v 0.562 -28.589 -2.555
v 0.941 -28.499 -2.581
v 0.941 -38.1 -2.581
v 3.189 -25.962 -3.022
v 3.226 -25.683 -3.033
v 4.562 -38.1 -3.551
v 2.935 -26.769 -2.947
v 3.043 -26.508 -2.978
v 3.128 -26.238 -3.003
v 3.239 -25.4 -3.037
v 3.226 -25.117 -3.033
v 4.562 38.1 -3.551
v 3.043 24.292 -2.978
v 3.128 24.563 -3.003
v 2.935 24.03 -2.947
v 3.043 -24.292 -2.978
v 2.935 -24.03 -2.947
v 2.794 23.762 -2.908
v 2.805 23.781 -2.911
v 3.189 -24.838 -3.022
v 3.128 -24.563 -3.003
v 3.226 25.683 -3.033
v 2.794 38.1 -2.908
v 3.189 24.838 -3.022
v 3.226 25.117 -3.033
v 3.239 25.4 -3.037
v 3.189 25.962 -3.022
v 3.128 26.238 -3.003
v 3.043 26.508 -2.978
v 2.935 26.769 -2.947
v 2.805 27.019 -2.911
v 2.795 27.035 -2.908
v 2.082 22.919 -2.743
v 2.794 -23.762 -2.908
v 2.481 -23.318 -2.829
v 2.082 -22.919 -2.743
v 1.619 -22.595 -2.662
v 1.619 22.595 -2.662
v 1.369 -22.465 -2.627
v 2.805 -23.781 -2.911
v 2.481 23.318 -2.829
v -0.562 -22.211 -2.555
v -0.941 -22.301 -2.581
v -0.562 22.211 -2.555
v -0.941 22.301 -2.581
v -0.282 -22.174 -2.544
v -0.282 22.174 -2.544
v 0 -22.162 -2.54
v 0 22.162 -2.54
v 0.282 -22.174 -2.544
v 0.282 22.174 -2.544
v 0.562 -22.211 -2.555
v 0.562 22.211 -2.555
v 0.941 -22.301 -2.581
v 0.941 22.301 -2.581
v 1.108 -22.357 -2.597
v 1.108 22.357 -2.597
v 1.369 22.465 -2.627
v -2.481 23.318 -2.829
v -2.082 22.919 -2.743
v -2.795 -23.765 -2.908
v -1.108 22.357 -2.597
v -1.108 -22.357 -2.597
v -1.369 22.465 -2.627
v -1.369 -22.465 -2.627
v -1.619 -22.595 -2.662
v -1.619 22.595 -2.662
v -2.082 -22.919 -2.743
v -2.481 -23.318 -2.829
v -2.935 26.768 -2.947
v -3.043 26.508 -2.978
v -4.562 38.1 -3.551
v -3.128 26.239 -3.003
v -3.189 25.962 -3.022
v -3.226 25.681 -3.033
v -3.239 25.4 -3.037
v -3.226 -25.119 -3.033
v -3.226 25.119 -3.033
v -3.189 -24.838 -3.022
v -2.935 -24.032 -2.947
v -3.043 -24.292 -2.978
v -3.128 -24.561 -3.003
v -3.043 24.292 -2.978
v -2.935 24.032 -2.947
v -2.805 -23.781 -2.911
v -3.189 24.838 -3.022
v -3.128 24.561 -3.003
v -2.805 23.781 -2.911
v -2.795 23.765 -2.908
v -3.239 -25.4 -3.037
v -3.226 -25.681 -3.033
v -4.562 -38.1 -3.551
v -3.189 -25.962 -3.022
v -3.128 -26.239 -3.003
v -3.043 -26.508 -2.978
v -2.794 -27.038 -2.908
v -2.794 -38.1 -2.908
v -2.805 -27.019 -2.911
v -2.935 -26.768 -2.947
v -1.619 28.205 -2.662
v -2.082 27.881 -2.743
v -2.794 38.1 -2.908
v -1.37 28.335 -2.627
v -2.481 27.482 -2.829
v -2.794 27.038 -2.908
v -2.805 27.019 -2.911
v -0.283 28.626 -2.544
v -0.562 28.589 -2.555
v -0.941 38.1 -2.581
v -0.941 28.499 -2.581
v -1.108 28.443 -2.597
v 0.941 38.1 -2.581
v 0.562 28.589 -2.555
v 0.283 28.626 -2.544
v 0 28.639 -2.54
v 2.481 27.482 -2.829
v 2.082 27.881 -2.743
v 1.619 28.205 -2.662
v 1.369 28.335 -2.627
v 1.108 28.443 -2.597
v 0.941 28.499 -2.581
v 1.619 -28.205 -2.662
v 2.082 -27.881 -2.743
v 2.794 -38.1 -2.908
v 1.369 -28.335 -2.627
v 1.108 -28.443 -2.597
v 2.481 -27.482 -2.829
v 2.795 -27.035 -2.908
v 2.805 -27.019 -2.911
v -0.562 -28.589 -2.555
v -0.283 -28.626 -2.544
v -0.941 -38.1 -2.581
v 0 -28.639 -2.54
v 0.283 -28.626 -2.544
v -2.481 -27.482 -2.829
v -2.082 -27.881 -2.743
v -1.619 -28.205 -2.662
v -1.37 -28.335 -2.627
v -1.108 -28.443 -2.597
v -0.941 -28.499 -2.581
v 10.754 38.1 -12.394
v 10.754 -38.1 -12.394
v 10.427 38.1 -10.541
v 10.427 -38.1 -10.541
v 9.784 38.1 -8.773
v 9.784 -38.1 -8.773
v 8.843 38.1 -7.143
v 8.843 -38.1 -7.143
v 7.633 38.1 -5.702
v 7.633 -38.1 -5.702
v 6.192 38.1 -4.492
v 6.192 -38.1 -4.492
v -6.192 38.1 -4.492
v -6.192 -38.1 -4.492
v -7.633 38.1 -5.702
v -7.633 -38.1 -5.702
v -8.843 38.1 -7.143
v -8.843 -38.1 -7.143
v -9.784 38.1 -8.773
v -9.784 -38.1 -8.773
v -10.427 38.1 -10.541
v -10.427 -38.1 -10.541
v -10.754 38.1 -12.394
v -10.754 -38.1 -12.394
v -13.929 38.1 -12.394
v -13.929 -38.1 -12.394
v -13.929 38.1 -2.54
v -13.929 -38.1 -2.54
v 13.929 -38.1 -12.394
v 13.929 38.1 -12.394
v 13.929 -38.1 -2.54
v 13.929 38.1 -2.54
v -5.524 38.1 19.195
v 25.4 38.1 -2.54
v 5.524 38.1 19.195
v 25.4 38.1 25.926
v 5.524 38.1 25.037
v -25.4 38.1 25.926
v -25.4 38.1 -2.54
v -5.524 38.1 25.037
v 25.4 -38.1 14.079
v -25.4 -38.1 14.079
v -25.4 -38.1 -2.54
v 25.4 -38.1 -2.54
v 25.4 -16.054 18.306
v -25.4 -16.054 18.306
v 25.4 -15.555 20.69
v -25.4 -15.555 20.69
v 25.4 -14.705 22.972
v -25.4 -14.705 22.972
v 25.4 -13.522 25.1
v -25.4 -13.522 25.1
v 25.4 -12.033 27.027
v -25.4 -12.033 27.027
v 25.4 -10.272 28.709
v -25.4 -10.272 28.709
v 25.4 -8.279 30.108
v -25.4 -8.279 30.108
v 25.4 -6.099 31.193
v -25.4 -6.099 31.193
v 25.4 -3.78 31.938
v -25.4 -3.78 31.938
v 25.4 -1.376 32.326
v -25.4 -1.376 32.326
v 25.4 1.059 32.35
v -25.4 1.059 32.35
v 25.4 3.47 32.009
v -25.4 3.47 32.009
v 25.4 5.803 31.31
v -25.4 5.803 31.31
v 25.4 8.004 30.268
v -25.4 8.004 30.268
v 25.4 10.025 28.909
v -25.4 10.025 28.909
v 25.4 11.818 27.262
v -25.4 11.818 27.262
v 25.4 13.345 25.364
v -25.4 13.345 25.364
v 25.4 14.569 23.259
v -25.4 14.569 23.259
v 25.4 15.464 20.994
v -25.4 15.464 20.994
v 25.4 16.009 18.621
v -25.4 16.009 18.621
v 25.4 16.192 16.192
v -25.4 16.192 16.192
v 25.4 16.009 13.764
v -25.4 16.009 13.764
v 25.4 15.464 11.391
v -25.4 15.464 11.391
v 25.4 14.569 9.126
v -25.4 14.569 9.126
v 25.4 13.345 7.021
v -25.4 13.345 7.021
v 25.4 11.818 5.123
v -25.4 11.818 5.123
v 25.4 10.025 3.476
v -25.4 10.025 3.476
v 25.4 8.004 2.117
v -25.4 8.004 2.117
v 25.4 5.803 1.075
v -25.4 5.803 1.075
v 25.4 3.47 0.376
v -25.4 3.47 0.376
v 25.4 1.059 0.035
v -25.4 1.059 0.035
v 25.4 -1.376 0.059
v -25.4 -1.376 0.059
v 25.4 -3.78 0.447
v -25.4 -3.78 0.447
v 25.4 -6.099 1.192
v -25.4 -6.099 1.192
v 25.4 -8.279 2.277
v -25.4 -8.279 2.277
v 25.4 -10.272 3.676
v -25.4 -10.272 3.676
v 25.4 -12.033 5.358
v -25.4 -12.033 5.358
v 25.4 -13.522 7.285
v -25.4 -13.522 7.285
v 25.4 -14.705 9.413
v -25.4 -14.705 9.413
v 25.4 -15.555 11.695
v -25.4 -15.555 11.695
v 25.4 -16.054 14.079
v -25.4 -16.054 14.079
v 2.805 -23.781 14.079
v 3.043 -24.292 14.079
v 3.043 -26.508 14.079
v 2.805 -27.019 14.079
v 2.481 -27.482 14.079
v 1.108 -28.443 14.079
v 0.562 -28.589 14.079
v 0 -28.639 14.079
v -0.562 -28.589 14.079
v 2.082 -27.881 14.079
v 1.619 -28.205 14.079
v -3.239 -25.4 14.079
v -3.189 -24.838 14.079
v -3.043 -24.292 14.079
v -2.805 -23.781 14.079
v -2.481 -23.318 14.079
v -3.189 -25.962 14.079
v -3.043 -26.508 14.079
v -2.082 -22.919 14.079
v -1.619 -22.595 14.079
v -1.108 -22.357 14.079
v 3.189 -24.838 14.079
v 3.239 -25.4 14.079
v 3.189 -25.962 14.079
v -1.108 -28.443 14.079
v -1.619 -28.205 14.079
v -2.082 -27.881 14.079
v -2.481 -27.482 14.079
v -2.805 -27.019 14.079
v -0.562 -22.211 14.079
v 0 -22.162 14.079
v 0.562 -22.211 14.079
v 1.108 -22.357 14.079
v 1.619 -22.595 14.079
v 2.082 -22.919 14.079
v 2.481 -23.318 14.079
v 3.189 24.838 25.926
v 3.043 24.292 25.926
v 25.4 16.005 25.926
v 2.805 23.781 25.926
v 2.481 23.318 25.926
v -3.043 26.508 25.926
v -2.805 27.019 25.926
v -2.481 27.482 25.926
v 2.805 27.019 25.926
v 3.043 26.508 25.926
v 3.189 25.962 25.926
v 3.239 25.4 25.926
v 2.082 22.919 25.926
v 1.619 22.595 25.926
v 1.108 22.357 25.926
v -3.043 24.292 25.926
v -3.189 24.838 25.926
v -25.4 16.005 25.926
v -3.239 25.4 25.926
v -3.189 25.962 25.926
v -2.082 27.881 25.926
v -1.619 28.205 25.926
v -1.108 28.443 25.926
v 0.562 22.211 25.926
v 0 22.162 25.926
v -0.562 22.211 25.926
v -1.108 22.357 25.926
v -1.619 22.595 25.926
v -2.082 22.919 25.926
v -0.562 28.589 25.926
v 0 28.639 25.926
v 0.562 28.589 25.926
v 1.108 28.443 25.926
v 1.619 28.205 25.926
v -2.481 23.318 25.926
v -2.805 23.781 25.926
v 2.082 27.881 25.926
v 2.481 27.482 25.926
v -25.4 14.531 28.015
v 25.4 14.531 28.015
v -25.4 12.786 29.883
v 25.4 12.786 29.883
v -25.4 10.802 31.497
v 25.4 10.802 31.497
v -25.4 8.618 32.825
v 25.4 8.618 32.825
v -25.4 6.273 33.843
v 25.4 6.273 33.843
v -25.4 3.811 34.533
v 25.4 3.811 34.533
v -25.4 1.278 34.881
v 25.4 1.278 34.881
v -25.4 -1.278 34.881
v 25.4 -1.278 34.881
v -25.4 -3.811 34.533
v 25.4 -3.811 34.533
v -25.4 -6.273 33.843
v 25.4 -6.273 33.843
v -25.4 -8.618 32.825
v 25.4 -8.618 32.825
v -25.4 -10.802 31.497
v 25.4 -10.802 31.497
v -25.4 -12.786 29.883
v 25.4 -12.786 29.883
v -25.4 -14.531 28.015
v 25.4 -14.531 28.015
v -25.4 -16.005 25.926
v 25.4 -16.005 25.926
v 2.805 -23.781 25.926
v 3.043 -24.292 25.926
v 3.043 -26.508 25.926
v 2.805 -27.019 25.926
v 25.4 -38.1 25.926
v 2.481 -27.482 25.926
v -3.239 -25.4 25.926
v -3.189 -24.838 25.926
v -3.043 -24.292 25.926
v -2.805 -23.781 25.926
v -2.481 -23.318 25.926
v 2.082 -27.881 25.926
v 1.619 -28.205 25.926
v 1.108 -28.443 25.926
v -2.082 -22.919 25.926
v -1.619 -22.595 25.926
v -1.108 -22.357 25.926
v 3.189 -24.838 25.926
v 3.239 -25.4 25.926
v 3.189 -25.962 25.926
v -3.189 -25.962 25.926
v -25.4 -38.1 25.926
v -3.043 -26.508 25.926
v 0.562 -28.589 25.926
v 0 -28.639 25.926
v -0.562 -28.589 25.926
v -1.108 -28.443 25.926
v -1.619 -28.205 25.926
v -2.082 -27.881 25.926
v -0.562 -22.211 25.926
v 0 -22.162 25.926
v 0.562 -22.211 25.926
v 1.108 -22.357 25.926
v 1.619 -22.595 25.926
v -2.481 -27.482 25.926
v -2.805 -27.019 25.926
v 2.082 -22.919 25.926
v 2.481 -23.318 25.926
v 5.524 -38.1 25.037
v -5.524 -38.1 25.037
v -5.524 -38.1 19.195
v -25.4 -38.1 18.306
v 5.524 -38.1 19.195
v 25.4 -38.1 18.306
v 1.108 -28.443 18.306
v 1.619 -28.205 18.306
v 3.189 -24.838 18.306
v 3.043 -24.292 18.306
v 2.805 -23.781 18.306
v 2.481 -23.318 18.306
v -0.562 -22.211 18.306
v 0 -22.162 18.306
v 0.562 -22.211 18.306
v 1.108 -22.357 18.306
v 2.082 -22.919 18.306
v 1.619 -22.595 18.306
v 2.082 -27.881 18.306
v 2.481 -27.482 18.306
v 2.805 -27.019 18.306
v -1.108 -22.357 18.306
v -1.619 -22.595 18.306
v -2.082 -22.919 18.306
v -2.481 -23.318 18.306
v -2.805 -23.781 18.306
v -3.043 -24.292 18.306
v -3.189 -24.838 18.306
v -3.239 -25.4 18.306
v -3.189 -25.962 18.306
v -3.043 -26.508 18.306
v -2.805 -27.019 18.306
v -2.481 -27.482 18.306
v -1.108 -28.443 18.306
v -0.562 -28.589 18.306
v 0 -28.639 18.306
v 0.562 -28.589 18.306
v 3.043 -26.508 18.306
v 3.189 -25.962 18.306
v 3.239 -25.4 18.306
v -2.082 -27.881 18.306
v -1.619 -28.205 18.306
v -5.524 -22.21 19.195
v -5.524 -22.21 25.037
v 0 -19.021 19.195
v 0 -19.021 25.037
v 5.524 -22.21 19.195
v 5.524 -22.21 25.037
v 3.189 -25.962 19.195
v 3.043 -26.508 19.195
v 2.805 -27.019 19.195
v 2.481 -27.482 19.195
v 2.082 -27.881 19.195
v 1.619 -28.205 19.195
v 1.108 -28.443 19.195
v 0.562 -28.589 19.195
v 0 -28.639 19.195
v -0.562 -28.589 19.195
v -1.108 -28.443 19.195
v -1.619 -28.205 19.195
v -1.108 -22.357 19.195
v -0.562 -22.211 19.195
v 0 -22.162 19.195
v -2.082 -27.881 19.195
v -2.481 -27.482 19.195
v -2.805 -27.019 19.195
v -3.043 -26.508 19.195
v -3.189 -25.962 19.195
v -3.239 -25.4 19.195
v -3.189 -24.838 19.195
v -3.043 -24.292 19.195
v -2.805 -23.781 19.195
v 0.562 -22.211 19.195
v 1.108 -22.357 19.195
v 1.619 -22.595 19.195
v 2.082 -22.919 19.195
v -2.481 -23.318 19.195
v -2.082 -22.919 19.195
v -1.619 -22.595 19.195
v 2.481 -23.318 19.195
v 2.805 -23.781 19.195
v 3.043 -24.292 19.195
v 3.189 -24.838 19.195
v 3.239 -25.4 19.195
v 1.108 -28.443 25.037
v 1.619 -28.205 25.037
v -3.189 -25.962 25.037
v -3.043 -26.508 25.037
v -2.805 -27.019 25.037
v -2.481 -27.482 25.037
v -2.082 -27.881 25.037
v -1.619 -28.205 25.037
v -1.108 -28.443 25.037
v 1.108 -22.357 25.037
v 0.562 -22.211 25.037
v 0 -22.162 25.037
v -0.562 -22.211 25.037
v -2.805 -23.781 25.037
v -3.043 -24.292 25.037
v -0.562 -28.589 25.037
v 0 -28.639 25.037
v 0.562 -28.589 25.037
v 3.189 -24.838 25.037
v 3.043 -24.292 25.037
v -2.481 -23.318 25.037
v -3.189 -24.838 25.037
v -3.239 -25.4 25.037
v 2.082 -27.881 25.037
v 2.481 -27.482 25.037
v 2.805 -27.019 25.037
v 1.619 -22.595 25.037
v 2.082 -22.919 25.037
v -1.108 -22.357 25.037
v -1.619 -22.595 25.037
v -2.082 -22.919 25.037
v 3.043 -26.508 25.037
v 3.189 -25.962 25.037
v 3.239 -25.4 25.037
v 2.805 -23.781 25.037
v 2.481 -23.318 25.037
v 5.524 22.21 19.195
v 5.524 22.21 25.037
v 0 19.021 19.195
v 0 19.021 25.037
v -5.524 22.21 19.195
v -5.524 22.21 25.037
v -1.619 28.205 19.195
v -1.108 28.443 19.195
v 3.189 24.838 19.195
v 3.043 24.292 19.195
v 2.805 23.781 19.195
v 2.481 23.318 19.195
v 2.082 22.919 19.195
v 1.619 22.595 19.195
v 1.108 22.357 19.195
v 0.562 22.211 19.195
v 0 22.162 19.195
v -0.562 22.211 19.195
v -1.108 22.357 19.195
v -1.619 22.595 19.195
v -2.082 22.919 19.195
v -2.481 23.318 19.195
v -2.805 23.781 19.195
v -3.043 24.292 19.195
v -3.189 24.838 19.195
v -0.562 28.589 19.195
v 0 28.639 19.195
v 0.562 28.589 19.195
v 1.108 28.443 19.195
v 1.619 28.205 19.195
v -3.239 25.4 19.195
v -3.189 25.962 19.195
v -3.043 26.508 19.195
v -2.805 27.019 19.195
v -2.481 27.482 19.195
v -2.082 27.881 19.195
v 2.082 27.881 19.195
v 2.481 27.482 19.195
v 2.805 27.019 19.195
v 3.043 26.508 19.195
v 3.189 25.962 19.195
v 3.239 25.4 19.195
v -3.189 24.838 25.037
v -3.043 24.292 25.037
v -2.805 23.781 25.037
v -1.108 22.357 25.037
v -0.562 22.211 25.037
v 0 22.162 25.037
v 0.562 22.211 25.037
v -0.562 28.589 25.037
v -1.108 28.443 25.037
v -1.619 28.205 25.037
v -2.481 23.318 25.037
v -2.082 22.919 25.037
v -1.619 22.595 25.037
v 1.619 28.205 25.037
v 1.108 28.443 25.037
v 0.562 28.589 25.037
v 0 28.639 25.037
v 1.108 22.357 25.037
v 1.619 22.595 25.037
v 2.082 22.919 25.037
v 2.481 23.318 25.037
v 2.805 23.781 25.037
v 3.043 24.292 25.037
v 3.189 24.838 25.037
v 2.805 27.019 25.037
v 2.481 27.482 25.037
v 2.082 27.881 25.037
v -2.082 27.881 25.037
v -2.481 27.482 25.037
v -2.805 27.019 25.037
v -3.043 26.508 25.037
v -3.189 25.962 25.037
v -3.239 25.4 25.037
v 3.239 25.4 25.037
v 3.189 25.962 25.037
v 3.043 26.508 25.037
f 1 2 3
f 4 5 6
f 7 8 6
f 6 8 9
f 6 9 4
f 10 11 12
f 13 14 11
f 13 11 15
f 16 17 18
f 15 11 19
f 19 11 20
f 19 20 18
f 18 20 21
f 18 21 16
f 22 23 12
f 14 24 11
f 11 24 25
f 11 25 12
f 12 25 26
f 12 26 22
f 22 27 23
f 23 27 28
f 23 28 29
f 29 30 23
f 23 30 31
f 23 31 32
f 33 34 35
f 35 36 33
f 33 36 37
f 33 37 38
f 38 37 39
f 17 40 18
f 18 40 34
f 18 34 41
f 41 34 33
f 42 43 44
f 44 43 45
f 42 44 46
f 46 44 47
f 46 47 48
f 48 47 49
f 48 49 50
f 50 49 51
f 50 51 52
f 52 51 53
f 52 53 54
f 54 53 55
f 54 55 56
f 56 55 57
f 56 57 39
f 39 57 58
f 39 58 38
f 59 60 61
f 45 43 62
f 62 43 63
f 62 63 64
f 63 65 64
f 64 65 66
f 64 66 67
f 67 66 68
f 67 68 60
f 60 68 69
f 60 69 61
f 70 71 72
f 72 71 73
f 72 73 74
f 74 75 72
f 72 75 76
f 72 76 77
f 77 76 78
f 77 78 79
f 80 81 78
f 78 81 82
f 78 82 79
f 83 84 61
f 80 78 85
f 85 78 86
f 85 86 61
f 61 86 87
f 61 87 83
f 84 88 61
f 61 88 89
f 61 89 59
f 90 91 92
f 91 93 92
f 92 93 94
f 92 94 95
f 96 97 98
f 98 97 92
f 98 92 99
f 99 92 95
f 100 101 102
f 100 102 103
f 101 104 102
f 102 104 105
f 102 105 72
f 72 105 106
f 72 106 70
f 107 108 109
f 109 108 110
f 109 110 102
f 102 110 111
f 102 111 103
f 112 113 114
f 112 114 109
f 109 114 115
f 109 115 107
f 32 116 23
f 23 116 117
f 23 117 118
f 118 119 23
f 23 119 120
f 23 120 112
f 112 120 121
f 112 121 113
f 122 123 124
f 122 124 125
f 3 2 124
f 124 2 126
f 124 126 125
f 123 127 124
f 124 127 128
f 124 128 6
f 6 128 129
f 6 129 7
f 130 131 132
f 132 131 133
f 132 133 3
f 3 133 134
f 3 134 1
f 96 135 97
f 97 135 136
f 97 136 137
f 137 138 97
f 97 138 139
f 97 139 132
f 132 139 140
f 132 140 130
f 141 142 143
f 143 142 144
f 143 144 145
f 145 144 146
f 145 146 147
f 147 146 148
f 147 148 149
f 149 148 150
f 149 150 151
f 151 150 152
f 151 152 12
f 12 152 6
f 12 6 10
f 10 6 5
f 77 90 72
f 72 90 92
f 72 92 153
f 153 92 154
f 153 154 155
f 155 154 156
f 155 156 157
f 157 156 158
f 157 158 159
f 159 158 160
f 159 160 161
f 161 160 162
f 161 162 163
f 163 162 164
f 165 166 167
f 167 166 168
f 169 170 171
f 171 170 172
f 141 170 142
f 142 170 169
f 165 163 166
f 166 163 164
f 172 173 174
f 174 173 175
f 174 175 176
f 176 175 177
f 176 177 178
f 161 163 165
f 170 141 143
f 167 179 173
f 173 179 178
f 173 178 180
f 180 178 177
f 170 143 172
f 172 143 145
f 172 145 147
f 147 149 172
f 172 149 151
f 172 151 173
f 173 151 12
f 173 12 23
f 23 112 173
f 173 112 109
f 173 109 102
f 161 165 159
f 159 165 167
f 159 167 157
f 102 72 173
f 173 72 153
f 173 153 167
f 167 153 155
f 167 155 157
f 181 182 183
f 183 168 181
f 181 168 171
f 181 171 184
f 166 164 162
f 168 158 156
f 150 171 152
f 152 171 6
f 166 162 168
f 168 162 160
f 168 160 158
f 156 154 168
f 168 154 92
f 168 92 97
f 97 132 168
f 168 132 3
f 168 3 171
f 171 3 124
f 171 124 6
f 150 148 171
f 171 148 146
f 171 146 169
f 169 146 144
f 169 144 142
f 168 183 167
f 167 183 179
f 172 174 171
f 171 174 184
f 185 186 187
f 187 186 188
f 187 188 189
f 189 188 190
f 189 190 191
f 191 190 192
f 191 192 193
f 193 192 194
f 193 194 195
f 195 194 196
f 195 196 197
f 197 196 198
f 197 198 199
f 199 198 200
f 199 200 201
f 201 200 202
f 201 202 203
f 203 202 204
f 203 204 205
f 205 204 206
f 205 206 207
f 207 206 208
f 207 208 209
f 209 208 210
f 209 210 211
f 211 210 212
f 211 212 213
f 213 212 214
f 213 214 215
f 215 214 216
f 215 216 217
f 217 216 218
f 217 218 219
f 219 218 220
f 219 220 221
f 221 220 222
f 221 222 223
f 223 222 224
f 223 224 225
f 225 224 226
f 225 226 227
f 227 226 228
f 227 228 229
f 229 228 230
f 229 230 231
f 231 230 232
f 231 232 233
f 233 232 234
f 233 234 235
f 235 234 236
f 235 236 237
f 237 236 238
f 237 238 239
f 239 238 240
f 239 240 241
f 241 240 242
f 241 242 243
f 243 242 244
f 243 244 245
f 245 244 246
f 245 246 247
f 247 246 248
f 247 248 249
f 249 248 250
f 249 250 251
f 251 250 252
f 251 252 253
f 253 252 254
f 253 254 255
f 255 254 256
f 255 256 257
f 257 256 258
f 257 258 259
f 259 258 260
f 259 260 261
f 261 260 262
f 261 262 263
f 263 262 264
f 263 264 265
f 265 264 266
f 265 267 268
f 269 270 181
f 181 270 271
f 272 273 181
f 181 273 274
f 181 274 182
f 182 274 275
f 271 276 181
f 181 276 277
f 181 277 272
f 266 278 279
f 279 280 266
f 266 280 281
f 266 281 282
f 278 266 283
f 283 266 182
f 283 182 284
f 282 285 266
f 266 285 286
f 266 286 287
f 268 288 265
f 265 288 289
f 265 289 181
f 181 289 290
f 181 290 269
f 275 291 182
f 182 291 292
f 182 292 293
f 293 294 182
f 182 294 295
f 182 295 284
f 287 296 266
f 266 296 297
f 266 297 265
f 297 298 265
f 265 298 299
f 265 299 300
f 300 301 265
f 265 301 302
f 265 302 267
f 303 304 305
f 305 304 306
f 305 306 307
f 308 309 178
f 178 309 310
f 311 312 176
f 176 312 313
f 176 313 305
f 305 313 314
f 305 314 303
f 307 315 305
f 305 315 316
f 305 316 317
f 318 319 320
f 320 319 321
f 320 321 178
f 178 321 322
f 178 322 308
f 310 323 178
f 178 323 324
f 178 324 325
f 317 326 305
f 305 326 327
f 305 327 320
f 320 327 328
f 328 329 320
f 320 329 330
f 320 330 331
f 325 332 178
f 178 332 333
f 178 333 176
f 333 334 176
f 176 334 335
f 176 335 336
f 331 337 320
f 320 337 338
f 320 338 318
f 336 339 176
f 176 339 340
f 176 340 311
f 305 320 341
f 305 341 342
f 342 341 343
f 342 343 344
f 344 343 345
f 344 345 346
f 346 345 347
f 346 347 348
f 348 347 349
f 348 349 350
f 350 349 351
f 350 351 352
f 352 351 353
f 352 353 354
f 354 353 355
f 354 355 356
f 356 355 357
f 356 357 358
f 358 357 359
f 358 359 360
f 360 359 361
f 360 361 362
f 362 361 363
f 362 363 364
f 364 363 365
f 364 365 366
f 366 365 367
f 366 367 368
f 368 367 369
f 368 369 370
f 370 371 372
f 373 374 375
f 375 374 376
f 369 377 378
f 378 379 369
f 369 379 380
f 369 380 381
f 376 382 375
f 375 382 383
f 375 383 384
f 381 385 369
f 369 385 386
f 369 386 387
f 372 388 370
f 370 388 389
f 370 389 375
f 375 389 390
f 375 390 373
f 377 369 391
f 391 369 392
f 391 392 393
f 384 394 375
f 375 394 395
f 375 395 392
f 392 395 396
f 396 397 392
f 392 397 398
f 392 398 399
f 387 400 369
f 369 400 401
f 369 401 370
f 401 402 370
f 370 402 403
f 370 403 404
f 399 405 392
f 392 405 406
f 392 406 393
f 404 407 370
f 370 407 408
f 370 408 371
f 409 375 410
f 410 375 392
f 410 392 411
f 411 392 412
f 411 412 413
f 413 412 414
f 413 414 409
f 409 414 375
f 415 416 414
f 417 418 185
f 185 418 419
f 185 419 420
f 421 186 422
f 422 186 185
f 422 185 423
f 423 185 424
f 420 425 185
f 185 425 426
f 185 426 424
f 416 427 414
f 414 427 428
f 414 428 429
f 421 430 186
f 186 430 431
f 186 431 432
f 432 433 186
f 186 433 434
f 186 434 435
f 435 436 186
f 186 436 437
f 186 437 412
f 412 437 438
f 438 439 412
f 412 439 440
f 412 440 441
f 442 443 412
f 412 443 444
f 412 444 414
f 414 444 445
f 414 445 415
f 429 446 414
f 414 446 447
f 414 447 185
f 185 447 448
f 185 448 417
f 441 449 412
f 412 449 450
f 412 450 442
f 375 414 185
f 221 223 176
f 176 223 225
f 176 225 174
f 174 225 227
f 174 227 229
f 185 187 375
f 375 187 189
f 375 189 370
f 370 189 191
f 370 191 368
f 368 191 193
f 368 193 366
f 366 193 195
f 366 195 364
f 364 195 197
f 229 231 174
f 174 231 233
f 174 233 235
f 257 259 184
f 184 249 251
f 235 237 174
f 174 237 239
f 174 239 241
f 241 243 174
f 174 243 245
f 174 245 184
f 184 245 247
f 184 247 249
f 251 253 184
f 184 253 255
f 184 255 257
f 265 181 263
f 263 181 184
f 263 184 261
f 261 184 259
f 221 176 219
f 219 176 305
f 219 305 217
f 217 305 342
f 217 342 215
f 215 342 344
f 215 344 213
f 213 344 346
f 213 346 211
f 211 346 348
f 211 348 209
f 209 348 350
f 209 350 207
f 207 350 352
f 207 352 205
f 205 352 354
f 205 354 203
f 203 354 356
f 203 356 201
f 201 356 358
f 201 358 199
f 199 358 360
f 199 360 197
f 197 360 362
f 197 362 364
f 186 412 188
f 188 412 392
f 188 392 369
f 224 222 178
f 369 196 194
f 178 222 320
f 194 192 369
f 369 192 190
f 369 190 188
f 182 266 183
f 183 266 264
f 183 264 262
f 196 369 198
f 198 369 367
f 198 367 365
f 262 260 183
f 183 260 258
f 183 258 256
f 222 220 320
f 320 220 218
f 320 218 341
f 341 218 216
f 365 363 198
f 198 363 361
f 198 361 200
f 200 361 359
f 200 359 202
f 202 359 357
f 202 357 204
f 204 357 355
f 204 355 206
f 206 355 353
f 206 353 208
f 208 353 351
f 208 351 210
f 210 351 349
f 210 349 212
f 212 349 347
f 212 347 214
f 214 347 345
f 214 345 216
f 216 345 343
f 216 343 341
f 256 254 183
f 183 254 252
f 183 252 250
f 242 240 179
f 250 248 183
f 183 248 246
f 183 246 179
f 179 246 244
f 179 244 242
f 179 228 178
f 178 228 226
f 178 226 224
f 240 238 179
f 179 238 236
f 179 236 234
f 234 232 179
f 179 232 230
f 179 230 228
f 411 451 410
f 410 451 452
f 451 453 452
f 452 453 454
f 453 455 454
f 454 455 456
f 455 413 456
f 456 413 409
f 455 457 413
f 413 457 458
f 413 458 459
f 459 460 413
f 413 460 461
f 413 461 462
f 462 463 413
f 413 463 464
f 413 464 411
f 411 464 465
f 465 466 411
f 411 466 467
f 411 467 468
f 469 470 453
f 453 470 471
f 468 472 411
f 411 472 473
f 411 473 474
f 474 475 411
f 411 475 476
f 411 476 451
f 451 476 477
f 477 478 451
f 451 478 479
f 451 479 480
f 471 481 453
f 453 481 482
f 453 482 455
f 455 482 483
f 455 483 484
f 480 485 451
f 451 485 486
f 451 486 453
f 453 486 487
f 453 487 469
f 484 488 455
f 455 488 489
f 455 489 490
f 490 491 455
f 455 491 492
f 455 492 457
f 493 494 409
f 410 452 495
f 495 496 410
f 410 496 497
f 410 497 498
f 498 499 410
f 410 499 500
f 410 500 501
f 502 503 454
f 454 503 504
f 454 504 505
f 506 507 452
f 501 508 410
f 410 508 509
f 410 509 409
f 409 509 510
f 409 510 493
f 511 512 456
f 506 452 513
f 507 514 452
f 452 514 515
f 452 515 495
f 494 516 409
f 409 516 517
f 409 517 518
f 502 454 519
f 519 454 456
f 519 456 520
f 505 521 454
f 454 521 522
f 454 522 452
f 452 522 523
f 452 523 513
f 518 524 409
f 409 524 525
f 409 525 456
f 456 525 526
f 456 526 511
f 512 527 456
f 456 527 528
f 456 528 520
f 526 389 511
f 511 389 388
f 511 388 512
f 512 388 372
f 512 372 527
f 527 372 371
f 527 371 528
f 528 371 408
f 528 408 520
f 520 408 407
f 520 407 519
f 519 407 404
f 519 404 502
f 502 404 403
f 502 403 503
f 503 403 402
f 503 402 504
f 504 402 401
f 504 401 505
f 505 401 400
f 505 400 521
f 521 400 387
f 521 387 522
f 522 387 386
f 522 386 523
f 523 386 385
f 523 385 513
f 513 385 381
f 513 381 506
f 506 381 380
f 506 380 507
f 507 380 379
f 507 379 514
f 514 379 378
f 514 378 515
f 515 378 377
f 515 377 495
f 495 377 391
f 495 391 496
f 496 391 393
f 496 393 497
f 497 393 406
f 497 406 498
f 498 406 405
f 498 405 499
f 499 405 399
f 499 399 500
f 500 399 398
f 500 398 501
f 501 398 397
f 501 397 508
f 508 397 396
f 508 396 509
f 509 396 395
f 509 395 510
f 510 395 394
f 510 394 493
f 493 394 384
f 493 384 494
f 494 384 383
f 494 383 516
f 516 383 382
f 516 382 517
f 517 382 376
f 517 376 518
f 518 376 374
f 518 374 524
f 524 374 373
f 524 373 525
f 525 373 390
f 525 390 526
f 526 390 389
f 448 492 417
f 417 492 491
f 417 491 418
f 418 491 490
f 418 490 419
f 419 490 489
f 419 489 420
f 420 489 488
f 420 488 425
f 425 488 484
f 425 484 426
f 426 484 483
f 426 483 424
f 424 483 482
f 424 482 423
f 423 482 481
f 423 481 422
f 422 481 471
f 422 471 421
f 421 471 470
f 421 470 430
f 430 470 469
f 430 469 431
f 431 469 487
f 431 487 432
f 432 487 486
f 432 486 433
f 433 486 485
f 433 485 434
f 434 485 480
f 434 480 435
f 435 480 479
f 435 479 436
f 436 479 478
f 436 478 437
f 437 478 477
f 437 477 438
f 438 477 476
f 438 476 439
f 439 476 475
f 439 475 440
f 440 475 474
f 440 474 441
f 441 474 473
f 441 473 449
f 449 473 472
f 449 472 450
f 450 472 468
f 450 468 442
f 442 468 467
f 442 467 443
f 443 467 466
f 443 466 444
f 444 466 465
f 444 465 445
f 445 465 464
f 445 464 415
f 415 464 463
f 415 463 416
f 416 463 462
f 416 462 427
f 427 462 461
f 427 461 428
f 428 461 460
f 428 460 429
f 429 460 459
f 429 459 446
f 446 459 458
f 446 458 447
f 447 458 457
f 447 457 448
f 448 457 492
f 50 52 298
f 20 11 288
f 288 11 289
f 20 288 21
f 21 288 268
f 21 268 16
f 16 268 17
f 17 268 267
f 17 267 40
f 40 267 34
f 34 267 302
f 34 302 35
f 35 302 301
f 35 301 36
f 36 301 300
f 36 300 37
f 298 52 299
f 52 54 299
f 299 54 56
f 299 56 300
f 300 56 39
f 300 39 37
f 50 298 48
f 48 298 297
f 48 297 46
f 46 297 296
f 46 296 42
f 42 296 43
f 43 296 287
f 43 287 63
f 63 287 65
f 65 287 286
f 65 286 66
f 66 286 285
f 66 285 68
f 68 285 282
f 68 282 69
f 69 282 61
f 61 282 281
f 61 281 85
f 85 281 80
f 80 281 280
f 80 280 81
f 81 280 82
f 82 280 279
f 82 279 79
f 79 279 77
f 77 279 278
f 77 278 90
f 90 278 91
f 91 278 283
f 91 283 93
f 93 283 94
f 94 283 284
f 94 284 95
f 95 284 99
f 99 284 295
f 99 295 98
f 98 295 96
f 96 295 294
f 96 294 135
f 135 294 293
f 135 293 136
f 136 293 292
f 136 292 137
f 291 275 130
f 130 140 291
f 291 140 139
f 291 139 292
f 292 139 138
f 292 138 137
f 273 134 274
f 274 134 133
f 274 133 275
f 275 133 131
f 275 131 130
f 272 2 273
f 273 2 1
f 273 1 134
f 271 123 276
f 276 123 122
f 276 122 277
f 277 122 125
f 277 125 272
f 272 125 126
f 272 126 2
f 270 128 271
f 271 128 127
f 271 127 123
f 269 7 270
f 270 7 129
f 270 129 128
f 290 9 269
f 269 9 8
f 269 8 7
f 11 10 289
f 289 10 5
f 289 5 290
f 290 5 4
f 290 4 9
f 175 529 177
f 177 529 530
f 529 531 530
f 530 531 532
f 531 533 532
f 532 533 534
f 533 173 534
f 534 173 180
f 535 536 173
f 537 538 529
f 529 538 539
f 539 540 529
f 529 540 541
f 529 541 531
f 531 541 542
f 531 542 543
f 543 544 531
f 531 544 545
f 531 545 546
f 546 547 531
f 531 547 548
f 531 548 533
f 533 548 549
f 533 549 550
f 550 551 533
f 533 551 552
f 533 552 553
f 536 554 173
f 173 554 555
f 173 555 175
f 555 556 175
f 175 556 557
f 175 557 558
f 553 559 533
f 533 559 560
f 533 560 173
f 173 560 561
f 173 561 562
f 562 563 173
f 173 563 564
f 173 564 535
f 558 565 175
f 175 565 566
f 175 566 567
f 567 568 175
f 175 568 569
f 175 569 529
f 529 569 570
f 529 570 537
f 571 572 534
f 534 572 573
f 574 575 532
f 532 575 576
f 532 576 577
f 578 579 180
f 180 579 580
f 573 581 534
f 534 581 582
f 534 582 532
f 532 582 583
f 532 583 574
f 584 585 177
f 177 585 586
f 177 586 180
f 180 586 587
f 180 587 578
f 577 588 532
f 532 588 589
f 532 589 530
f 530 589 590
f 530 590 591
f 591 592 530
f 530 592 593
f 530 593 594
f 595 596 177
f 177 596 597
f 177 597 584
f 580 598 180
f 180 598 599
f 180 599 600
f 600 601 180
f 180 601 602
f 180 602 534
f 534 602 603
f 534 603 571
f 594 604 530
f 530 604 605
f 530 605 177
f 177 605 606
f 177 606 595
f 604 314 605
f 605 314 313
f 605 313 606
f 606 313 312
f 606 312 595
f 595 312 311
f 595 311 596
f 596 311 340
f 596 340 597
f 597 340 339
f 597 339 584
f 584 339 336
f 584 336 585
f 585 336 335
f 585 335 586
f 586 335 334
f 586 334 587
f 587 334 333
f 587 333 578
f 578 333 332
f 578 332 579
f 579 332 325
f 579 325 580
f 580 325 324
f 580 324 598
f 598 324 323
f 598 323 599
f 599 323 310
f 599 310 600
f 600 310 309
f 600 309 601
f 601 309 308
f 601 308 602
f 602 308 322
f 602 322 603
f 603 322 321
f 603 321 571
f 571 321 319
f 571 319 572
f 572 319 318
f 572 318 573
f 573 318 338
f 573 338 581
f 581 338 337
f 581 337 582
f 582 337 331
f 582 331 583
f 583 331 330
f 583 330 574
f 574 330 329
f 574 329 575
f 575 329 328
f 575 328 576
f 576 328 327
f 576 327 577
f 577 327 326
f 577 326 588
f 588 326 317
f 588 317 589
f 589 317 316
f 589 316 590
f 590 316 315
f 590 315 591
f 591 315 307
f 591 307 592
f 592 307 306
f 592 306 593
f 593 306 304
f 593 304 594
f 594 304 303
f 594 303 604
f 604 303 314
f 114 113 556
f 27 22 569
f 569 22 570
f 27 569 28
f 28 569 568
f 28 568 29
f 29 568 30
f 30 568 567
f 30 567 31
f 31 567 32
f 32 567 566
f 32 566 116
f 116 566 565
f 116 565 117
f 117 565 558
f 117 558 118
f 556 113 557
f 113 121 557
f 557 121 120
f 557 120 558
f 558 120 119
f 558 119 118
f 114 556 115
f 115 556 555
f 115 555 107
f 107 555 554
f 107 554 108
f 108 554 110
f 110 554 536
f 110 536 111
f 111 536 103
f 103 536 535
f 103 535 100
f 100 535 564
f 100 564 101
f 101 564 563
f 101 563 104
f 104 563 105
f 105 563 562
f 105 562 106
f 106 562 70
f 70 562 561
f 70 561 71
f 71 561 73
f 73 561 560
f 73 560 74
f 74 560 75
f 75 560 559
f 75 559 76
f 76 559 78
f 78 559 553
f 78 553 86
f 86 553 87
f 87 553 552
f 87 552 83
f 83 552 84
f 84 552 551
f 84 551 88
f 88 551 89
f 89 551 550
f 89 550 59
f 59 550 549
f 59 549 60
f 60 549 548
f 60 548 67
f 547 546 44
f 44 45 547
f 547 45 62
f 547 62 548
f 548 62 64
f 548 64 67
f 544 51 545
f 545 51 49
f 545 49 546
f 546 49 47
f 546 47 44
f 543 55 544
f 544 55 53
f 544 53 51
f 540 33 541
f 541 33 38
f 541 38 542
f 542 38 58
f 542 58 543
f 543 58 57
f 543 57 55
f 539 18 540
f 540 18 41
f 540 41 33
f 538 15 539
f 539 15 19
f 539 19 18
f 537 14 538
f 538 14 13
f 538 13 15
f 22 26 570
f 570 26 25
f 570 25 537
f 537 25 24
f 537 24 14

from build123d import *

# Parameters (mm, degrees)
BOSS_EXTRUDE1_DEPTH = 38.1
BOSS_EXTRUDE2_DEPTH = 25.4
CUT_EXTRUDE1_DEPTH  = 2.921
SKETCH5_R           = 3.2385
CUT_EXTRUDE3_DEPTH  = 58.589283942


with BuildPart() as part:
    # Sketch1 → Boss-Extrude1 (new, symmetric)
    with BuildSketch(Plane(origin=(0, 0, 0), x_dir=(1, 0, 0), z_dir=(0, 1, 0))):
        with BuildLine():
            Line((-13.928921766, 0), (13.928921766, 0))
            Line((13.928921766, 0), (13.928921766, 12.394153757))
            Line((13.928921766, 12.394153757), (10.753921766, 12.394153757))
            ThreePointArc((10.753921766, 12.394153757), (0, 2.54), (-10.753921766, 12.394153757))
            Line((-10.753921766, 12.394153757), (-13.928921766, 12.394153757))
            Line((-13.928921766, 12.394153757), (-13.928921766, 0))
        make_face()
    extrude(amount=BOSS_EXTRUDE1_DEPTH, both=True)

    # Sketch2 → Boss-Extrude2 (add, symmetric)
    with BuildSketch(Plane(origin=(0, 0, 0), x_dir=(0, 0, -1), z_dir=(1, 0, 0))):
        with BuildLine():
            Line((-18.306045368, -16.053970918), (-18.306045368, -38.1))
            Line((-18.306045368, -38.1), (-25.926045368, -38.1))
            Line((-25.926045368, -38.1), (-25.926045368, -16.005144511))
            ThreePointArc((-25.926045368, -16.005144511), (-34.925, 0), (-25.926045368, 16.005144511))
            Line((-25.926045368, 16.005144511), (-25.926045368, 38.1))
            Line((-25.926045368, 38.1), (2.54, 38.1))
            Line((2.54, 38.1), (2.54, -38.1))
            Line((2.54, -38.1), (-14.078954632, -38.1))
            Line((-14.078954632, -38.1), (-14.078954632, -16.053970918))
            ThreePointArc((-14.078954632, -16.053970918), (-16.1925, 16.1925), (-18.306045368, -16.053970918))
        make_face()
    extrude(amount=BOSS_EXTRUDE2_DEPTH, both=True)

    # Sketch3 → Cut-Extrude1 (cut, symmetric)
    with BuildSketch(Plane.XY.offset(22.116045368)):
        Polygon((5.5245, -28.589571562), (5.5245, -22.210428438), (0, -19.020856876), (-5.5245, -22.210428438), (-5.5245, -28.589571562), (-5.5245, -38.1), (5.5245, -38.1), align=None)
    cut_extrude1 = extrude(amount=CUT_EXTRUDE1_DEPTH, both=True, mode=Mode.SUBTRACT)

    # Sketch5 → Cut-Extrude3 (cut, symmetric)
    with BuildSketch(Plane.XY):
        with Locations((0, -25.4)):
            Circle(SKETCH5_R)
    cut_extrude3 = extrude(amount=CUT_EXTRUDE3_DEPTH, both=True, mode=Mode.SUBTRACT)

    # Mirror1: Cut-Extrude1, Cut-Extrude3 across plane
    add(cut_extrude1.mirror(Plane.ZX), mode=Mode.SUBTRACT)
    add(cut_extrude3.mirror(Plane.ZX), mode=Mode.SUBTRACT)


solid = part.part
